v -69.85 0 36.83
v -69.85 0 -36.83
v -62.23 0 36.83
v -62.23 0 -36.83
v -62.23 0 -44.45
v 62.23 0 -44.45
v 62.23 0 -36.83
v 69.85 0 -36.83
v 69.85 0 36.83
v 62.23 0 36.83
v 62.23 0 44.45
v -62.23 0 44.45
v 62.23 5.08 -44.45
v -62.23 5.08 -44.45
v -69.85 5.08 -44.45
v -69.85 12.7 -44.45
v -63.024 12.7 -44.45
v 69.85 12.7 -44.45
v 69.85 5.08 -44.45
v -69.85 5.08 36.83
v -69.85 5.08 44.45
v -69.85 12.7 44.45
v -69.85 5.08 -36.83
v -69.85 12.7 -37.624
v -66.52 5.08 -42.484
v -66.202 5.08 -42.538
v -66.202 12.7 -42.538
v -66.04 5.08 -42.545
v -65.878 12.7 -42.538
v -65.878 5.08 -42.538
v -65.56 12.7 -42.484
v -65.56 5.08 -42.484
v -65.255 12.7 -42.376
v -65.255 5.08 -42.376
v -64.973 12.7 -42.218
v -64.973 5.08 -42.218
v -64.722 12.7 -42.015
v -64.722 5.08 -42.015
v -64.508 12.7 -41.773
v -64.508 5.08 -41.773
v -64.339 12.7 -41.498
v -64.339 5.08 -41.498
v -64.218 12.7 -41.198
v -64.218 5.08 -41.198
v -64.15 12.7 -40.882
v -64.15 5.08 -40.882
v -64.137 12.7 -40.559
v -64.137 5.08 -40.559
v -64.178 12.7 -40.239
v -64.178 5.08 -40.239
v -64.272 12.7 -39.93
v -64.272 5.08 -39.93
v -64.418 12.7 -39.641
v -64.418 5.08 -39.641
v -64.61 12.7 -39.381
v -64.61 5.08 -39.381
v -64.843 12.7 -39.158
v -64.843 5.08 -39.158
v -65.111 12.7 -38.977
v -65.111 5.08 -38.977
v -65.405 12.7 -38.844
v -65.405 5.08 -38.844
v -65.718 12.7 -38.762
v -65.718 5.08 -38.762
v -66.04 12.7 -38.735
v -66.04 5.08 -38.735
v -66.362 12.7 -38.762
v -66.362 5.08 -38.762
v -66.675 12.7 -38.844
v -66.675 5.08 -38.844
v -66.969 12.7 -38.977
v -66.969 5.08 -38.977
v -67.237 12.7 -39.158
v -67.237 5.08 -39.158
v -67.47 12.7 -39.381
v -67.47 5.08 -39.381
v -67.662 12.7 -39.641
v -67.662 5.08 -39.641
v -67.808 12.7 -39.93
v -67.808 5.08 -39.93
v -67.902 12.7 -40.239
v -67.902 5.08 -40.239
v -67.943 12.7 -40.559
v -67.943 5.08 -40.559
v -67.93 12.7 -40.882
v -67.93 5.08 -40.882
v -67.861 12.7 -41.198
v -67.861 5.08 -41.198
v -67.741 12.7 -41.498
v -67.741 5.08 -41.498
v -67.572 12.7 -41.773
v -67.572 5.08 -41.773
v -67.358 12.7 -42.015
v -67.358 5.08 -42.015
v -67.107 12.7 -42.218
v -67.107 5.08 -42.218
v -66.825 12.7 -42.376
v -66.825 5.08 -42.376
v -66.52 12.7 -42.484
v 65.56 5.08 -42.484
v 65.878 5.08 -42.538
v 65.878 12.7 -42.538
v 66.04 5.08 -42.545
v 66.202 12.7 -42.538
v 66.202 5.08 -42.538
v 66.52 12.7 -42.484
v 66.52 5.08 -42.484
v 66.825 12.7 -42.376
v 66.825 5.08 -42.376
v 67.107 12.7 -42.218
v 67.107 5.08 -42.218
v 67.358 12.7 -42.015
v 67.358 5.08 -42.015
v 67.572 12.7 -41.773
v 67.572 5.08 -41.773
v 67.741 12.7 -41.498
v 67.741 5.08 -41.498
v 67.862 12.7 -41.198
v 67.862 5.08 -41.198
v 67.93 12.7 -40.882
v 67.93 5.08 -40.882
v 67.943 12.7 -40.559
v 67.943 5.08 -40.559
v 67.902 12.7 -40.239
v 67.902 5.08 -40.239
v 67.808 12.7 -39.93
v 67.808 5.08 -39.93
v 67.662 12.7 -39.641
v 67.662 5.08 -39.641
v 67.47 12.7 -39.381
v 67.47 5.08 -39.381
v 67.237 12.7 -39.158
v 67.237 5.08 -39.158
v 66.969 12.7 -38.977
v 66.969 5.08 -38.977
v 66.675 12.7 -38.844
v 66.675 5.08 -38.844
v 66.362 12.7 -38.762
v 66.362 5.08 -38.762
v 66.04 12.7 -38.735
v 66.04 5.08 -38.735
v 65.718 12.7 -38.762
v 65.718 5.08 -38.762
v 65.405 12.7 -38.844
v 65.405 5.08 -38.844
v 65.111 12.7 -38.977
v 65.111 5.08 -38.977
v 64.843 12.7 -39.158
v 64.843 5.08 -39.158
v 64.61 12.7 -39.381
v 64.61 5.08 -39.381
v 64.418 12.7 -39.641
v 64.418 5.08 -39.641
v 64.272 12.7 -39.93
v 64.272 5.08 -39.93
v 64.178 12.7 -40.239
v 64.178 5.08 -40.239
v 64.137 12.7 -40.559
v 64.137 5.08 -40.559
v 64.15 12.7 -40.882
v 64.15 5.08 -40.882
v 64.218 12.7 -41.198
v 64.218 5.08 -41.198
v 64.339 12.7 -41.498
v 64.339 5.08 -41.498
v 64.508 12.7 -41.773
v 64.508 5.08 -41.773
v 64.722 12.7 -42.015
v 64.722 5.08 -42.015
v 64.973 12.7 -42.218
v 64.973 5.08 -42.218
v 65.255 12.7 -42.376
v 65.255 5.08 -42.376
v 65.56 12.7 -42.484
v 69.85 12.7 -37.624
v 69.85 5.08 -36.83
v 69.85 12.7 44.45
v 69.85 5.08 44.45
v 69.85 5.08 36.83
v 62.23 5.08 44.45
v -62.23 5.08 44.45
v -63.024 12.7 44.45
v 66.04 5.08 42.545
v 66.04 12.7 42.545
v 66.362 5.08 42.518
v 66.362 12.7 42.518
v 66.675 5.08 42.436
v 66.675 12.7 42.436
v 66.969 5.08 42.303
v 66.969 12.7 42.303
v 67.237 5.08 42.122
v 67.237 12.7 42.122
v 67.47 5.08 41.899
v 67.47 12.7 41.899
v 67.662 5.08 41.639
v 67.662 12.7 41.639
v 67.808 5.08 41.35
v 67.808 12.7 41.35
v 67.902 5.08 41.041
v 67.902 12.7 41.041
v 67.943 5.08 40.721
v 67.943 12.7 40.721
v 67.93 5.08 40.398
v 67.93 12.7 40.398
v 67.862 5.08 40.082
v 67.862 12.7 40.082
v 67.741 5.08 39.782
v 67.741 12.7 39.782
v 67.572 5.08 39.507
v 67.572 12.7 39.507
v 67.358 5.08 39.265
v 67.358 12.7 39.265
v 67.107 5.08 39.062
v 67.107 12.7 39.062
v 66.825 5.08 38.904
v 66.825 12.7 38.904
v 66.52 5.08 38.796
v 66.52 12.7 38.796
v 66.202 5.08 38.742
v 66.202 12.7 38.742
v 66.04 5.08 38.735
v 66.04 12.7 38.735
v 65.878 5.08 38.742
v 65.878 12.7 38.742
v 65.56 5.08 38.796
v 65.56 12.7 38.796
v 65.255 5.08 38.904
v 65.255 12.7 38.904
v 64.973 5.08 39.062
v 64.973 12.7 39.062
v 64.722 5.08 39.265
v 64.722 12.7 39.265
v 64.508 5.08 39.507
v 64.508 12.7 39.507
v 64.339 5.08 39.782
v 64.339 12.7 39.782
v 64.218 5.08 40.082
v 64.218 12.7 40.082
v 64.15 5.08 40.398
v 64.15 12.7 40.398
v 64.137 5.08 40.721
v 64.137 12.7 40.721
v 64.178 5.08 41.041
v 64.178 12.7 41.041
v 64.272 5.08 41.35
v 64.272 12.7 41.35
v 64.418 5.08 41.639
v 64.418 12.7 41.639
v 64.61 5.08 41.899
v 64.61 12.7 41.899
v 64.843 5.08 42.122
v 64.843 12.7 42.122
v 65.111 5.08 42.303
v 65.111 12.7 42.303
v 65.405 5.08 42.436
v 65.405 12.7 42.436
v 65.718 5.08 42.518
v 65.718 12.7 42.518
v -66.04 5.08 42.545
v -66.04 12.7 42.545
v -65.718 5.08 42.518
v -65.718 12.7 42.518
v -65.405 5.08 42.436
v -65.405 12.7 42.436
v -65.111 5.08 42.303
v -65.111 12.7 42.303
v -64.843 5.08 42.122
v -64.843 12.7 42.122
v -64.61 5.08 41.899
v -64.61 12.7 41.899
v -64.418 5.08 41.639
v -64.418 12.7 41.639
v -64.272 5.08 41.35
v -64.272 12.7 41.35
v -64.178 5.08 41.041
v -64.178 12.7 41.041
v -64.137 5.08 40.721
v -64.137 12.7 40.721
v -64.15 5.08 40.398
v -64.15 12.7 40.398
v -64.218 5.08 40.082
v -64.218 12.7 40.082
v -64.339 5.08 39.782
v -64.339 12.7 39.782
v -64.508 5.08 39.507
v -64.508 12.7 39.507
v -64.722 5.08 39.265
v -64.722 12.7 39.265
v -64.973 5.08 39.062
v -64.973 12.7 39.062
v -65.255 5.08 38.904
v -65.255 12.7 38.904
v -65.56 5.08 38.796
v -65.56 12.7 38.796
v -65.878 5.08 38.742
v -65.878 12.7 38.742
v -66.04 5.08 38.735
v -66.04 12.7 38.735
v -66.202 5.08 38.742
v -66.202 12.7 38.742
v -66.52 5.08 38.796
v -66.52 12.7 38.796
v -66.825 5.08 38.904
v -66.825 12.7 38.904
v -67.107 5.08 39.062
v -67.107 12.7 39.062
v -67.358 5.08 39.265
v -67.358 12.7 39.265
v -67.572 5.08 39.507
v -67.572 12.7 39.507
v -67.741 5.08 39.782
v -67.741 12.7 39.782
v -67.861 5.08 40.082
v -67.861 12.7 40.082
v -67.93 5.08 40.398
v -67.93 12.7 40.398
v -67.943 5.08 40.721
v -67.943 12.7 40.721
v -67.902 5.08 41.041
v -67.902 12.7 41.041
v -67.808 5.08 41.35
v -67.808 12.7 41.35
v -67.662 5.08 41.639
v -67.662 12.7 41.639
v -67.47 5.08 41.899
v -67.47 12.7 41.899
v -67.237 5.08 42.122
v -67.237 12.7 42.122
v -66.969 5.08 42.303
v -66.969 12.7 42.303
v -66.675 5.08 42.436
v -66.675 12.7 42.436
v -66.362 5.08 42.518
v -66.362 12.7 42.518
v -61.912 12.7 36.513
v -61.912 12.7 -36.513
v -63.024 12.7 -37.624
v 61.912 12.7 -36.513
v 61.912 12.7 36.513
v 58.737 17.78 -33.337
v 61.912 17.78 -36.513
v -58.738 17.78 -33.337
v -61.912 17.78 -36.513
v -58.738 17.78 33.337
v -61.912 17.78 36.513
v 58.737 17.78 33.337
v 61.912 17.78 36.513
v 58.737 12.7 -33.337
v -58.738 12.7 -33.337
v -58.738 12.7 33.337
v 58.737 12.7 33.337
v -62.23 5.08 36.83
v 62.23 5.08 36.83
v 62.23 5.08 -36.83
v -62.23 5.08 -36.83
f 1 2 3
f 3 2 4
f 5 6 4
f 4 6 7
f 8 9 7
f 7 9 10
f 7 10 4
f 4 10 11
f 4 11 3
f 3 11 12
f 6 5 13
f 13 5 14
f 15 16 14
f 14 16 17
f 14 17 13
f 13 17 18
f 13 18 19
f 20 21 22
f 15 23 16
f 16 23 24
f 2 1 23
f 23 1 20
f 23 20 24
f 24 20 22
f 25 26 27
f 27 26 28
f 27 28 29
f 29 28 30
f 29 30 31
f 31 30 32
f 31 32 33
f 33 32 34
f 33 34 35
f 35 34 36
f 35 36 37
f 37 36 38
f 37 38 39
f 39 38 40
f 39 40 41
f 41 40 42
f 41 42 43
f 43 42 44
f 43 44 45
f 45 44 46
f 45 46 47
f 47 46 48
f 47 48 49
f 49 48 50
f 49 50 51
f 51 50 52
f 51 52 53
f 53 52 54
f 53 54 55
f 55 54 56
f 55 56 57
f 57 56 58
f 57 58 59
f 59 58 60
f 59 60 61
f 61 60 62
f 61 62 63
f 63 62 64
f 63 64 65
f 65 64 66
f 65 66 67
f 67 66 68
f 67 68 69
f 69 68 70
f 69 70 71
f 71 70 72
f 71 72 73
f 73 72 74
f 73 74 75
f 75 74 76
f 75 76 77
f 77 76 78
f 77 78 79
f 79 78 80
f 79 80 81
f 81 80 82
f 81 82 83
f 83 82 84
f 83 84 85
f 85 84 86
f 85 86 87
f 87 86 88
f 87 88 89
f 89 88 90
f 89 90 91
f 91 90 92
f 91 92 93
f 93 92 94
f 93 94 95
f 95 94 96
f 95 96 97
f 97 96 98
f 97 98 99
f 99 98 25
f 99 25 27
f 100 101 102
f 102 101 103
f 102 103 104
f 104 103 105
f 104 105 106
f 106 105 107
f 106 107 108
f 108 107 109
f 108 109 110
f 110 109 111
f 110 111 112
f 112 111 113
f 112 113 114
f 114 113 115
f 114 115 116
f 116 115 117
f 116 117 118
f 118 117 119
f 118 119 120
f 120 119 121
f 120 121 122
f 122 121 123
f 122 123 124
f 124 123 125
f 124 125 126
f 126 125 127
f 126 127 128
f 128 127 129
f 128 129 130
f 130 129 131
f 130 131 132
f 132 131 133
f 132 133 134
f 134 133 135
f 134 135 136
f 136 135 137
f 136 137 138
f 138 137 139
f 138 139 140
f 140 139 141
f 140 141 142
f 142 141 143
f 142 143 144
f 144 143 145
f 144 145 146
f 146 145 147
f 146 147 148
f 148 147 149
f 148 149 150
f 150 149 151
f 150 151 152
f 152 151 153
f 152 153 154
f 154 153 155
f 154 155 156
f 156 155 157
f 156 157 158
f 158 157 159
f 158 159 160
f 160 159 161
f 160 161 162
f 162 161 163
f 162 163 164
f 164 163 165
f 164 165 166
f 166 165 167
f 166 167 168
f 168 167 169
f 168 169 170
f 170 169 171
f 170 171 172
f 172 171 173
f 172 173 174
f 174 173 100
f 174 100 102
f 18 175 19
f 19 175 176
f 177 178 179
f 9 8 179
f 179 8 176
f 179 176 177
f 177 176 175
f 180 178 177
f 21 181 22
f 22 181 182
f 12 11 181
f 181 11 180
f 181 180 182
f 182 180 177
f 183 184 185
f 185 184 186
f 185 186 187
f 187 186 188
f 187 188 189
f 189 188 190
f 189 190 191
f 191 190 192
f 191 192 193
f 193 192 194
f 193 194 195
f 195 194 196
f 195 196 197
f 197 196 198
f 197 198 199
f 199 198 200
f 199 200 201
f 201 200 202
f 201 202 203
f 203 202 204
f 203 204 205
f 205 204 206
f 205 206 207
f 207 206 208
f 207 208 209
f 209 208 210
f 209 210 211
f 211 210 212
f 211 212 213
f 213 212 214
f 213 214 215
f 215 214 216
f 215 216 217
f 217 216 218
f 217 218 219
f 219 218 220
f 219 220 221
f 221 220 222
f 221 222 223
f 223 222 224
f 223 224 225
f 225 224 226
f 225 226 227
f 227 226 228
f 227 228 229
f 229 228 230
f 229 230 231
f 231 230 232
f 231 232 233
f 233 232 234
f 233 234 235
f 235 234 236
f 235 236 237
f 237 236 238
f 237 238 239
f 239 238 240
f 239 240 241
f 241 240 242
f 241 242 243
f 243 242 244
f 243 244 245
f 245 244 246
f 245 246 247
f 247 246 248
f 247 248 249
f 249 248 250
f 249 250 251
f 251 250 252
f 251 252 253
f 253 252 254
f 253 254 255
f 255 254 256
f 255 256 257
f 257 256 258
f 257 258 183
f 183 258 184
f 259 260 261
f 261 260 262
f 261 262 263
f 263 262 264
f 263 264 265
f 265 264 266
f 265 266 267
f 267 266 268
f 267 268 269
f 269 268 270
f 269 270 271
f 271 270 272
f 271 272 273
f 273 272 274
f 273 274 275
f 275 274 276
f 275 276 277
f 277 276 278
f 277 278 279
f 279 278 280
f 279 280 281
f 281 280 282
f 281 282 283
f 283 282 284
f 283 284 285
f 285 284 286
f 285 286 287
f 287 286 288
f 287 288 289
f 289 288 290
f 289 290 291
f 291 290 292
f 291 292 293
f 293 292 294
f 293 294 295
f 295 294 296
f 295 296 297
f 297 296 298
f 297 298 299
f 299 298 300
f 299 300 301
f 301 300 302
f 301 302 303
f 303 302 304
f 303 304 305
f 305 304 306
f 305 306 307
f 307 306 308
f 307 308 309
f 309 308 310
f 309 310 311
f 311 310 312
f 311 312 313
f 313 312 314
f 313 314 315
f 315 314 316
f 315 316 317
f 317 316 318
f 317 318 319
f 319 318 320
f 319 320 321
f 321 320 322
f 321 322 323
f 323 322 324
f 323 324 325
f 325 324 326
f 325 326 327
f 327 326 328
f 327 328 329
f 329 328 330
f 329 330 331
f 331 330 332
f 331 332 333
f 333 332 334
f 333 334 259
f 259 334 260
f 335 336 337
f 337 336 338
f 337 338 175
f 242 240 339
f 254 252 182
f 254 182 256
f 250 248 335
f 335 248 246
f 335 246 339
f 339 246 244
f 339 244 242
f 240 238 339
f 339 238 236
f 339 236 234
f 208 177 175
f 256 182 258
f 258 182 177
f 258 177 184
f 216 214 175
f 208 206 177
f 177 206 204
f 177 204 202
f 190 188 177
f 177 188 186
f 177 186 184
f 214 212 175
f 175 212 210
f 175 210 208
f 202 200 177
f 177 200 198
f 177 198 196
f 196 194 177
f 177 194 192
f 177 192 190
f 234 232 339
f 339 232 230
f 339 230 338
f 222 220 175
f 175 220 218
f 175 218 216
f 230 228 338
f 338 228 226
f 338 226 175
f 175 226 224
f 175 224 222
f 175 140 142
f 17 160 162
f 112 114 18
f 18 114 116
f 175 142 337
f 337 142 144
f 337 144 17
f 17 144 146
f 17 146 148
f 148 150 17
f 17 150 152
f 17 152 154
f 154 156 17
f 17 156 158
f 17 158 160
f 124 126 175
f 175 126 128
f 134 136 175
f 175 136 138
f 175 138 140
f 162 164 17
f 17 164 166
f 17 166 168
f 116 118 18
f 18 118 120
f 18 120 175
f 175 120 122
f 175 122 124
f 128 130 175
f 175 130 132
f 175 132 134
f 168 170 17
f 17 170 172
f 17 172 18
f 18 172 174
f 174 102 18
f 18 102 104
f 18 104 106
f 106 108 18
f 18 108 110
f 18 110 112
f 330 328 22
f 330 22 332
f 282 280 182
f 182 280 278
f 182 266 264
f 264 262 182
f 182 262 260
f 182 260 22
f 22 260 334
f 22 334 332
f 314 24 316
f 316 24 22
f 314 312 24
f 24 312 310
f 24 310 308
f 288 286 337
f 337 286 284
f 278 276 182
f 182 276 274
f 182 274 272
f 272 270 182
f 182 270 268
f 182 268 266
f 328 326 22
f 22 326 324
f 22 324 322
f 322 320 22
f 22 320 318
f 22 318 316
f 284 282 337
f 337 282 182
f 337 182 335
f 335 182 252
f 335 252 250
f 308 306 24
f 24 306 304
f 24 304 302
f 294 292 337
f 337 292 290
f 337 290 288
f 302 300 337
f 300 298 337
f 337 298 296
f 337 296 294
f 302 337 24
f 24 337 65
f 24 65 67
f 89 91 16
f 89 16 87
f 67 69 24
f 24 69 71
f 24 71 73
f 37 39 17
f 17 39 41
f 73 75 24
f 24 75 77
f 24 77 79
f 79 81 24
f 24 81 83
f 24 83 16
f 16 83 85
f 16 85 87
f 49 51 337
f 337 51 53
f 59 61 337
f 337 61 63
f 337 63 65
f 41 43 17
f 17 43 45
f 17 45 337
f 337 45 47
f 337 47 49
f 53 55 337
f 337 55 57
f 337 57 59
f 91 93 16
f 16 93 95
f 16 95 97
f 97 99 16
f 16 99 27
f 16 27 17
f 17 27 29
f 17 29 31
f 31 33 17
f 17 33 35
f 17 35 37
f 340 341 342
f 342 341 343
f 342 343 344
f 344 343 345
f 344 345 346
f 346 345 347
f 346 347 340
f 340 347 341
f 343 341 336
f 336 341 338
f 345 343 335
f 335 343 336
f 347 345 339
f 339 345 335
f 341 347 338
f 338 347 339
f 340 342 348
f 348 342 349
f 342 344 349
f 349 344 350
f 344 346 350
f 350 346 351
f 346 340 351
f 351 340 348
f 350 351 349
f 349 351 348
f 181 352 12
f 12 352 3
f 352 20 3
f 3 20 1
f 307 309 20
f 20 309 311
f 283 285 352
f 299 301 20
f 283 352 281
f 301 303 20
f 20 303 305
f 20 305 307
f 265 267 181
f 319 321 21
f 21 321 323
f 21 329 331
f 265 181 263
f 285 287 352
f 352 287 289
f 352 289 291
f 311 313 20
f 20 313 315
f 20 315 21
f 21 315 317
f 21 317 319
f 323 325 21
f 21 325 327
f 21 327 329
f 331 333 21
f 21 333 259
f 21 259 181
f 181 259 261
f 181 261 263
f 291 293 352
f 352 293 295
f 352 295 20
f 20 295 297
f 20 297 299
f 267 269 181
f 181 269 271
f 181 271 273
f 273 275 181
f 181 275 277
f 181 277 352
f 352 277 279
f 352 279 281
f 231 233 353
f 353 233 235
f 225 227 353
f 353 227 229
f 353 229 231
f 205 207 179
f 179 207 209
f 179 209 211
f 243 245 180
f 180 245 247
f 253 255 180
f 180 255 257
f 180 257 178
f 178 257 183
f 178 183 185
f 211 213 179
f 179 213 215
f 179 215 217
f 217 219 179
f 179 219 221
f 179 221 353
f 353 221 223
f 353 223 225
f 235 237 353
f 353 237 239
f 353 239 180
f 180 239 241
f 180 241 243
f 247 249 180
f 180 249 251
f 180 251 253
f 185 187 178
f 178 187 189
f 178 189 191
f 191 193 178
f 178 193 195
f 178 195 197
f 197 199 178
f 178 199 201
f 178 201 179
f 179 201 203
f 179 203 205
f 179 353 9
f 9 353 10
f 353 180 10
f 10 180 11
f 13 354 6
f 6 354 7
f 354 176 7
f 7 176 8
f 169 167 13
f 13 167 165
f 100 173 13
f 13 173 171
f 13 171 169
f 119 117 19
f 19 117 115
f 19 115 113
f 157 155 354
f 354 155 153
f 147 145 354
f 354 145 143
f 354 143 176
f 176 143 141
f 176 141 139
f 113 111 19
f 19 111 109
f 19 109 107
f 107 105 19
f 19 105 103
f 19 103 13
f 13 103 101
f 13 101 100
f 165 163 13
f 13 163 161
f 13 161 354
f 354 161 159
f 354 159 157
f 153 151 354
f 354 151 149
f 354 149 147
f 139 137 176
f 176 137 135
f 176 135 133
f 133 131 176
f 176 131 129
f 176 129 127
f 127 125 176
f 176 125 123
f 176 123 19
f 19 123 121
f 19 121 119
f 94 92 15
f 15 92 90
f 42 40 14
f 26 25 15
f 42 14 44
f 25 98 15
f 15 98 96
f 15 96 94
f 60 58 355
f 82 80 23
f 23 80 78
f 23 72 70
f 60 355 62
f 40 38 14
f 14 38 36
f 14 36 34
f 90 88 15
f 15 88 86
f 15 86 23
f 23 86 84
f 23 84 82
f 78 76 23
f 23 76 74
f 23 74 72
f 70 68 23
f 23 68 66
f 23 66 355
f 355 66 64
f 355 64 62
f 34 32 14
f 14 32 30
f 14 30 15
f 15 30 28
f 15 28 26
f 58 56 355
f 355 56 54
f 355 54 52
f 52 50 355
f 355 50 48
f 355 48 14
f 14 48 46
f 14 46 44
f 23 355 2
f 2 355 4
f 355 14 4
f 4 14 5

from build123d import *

# Parameters (mm, degrees)
SKETCH1_W               = 139.7
SKETCH1_H               = 88.9
BOSS_EXTRUDE1_DEPTH     = 12.7
SKETCH4_R               = 1.905
CUT_EXTRUDE1_DEPTH      = 84.762252835
MIRROR2_COPY_1_SKETCH_R = 1.905
MIRROR2_COPY_1_DEPTH    = 84.762252835
SKETCH5_W               = 123.825
SKETCH5_H               = 73.025
SKETCH5_W_2             = 117.475
SKETCH5_H_2             = 66.675
BOSS_EXTRUDE2_DEPTH     = 5.08
SKETCH6_W               = 7.62
SKETCH6_H               = 7.62
CUT_EXTRUDE2_DEPTH      = 5.08
MIRROR4_COPY_1_SKETCH_W = 7.62
MIRROR4_COPY_1_SKETCH_H = 7.62
MIRROR4_COPY_1_DEPTH    = 5.08


with BuildPart() as part:
    # Sketch1 → Boss-Extrude1 (new body)
    with BuildSketch(Plane(origin=(0, 0, 0), x_dir=(1, 0, 0), z_dir=(0, 1, 0))):
        Rectangle(SKETCH1_W, SKETCH1_H)
    extrude(amount=BOSS_EXTRUDE1_DEPTH)

    # Sketch4 → Cut-Extrude1 (cut, through all)
    with BuildSketch(Plane(origin=(0, 12.7, 0), x_dir=(1, 0, 0), z_dir=(0, 1, 0))):
        with Locations(Location((-66.04, 40.64, 0), (0, 0, 270))):
            Circle(SKETCH4_R)
    cut_extrude1 = extrude(amount=-CUT_EXTRUDE1_DEPTH, mode=Mode.SUBTRACT)

    # Mirror1: Cut-Extrude1 across plane
    add(cut_extrude1.mirror(Plane(origin=(0, 0, 0), x_dir=(0, 0, 1), z_dir=(1, 0, 0))), mode=Mode.SUBTRACT)

    # Mirror2: Cut-Extrude1 across plane
    add(cut_extrude1.mirror(Plane.XY), mode=Mode.SUBTRACT)

    # Mirror2 copy 1 sketch → Mirror2 copy 1 (cut, through all)
    with BuildSketch(Plane(origin=(0, 12.7, 0), x_dir=(-1, 0, 0), z_dir=(0, 1, 0))):
        with Locations(Location((-66.04, 40.64, 0), (0, 0, 270))):
            Circle(MIRROR2_COPY_1_SKETCH_R)
    extrude(amount=-MIRROR2_COPY_1_DEPTH, mode=Mode.SUBTRACT)

    # Sketch5 → Boss-Extrude2 (add)
    with BuildSketch(Plane(origin=(0, 12.7, 0), x_dir=(1, 0, 0), z_dir=(0, 1, 0))):
        Rectangle(SKETCH5_W, SKETCH5_H)
        Rectangle(SKETCH5_W_2, SKETCH5_H_2, mode=Mode.SUBTRACT)
    extrude(amount=BOSS_EXTRUDE2_DEPTH)

    # Sketch6 → Cut-Extrude2 (cut)
    with BuildSketch(Plane.XZ):
        with Locations((-66.04, 40.64)):
            Rectangle(SKETCH6_W, SKETCH6_H)
    cut_extrude2 = extrude(amount=-CUT_EXTRUDE2_DEPTH, mode=Mode.SUBTRACT)

    # Mirror3: Cut-Extrude2 across plane
    add(cut_extrude2.mirror(Plane(origin=(0, 0, 0), x_dir=(0, 0, 1), z_dir=(1, 0, 0))), mode=Mode.SUBTRACT)

    # Mirror4: Cut-Extrude2 across plane
    add(cut_extrude2.mirror(Plane.XY), mode=Mode.SUBTRACT)

    # Mirror4 copy 1 sketch → Mirror4 copy 1 (cut)
    with BuildSketch(Plane(origin=(0, 0, 0), x_dir=(-1, 0, 0), z_dir=(0, -1, 0))):
        with Locations((-66.04, 40.64)):
            Rectangle(MIRROR4_COPY_1_SKETCH_W, MIRROR4_COPY_1_SKETCH_H)
    extrude(amount=-MIRROR4_COPY_1_DEPTH, mode=Mode.SUBTRACT)


solid = part.part
